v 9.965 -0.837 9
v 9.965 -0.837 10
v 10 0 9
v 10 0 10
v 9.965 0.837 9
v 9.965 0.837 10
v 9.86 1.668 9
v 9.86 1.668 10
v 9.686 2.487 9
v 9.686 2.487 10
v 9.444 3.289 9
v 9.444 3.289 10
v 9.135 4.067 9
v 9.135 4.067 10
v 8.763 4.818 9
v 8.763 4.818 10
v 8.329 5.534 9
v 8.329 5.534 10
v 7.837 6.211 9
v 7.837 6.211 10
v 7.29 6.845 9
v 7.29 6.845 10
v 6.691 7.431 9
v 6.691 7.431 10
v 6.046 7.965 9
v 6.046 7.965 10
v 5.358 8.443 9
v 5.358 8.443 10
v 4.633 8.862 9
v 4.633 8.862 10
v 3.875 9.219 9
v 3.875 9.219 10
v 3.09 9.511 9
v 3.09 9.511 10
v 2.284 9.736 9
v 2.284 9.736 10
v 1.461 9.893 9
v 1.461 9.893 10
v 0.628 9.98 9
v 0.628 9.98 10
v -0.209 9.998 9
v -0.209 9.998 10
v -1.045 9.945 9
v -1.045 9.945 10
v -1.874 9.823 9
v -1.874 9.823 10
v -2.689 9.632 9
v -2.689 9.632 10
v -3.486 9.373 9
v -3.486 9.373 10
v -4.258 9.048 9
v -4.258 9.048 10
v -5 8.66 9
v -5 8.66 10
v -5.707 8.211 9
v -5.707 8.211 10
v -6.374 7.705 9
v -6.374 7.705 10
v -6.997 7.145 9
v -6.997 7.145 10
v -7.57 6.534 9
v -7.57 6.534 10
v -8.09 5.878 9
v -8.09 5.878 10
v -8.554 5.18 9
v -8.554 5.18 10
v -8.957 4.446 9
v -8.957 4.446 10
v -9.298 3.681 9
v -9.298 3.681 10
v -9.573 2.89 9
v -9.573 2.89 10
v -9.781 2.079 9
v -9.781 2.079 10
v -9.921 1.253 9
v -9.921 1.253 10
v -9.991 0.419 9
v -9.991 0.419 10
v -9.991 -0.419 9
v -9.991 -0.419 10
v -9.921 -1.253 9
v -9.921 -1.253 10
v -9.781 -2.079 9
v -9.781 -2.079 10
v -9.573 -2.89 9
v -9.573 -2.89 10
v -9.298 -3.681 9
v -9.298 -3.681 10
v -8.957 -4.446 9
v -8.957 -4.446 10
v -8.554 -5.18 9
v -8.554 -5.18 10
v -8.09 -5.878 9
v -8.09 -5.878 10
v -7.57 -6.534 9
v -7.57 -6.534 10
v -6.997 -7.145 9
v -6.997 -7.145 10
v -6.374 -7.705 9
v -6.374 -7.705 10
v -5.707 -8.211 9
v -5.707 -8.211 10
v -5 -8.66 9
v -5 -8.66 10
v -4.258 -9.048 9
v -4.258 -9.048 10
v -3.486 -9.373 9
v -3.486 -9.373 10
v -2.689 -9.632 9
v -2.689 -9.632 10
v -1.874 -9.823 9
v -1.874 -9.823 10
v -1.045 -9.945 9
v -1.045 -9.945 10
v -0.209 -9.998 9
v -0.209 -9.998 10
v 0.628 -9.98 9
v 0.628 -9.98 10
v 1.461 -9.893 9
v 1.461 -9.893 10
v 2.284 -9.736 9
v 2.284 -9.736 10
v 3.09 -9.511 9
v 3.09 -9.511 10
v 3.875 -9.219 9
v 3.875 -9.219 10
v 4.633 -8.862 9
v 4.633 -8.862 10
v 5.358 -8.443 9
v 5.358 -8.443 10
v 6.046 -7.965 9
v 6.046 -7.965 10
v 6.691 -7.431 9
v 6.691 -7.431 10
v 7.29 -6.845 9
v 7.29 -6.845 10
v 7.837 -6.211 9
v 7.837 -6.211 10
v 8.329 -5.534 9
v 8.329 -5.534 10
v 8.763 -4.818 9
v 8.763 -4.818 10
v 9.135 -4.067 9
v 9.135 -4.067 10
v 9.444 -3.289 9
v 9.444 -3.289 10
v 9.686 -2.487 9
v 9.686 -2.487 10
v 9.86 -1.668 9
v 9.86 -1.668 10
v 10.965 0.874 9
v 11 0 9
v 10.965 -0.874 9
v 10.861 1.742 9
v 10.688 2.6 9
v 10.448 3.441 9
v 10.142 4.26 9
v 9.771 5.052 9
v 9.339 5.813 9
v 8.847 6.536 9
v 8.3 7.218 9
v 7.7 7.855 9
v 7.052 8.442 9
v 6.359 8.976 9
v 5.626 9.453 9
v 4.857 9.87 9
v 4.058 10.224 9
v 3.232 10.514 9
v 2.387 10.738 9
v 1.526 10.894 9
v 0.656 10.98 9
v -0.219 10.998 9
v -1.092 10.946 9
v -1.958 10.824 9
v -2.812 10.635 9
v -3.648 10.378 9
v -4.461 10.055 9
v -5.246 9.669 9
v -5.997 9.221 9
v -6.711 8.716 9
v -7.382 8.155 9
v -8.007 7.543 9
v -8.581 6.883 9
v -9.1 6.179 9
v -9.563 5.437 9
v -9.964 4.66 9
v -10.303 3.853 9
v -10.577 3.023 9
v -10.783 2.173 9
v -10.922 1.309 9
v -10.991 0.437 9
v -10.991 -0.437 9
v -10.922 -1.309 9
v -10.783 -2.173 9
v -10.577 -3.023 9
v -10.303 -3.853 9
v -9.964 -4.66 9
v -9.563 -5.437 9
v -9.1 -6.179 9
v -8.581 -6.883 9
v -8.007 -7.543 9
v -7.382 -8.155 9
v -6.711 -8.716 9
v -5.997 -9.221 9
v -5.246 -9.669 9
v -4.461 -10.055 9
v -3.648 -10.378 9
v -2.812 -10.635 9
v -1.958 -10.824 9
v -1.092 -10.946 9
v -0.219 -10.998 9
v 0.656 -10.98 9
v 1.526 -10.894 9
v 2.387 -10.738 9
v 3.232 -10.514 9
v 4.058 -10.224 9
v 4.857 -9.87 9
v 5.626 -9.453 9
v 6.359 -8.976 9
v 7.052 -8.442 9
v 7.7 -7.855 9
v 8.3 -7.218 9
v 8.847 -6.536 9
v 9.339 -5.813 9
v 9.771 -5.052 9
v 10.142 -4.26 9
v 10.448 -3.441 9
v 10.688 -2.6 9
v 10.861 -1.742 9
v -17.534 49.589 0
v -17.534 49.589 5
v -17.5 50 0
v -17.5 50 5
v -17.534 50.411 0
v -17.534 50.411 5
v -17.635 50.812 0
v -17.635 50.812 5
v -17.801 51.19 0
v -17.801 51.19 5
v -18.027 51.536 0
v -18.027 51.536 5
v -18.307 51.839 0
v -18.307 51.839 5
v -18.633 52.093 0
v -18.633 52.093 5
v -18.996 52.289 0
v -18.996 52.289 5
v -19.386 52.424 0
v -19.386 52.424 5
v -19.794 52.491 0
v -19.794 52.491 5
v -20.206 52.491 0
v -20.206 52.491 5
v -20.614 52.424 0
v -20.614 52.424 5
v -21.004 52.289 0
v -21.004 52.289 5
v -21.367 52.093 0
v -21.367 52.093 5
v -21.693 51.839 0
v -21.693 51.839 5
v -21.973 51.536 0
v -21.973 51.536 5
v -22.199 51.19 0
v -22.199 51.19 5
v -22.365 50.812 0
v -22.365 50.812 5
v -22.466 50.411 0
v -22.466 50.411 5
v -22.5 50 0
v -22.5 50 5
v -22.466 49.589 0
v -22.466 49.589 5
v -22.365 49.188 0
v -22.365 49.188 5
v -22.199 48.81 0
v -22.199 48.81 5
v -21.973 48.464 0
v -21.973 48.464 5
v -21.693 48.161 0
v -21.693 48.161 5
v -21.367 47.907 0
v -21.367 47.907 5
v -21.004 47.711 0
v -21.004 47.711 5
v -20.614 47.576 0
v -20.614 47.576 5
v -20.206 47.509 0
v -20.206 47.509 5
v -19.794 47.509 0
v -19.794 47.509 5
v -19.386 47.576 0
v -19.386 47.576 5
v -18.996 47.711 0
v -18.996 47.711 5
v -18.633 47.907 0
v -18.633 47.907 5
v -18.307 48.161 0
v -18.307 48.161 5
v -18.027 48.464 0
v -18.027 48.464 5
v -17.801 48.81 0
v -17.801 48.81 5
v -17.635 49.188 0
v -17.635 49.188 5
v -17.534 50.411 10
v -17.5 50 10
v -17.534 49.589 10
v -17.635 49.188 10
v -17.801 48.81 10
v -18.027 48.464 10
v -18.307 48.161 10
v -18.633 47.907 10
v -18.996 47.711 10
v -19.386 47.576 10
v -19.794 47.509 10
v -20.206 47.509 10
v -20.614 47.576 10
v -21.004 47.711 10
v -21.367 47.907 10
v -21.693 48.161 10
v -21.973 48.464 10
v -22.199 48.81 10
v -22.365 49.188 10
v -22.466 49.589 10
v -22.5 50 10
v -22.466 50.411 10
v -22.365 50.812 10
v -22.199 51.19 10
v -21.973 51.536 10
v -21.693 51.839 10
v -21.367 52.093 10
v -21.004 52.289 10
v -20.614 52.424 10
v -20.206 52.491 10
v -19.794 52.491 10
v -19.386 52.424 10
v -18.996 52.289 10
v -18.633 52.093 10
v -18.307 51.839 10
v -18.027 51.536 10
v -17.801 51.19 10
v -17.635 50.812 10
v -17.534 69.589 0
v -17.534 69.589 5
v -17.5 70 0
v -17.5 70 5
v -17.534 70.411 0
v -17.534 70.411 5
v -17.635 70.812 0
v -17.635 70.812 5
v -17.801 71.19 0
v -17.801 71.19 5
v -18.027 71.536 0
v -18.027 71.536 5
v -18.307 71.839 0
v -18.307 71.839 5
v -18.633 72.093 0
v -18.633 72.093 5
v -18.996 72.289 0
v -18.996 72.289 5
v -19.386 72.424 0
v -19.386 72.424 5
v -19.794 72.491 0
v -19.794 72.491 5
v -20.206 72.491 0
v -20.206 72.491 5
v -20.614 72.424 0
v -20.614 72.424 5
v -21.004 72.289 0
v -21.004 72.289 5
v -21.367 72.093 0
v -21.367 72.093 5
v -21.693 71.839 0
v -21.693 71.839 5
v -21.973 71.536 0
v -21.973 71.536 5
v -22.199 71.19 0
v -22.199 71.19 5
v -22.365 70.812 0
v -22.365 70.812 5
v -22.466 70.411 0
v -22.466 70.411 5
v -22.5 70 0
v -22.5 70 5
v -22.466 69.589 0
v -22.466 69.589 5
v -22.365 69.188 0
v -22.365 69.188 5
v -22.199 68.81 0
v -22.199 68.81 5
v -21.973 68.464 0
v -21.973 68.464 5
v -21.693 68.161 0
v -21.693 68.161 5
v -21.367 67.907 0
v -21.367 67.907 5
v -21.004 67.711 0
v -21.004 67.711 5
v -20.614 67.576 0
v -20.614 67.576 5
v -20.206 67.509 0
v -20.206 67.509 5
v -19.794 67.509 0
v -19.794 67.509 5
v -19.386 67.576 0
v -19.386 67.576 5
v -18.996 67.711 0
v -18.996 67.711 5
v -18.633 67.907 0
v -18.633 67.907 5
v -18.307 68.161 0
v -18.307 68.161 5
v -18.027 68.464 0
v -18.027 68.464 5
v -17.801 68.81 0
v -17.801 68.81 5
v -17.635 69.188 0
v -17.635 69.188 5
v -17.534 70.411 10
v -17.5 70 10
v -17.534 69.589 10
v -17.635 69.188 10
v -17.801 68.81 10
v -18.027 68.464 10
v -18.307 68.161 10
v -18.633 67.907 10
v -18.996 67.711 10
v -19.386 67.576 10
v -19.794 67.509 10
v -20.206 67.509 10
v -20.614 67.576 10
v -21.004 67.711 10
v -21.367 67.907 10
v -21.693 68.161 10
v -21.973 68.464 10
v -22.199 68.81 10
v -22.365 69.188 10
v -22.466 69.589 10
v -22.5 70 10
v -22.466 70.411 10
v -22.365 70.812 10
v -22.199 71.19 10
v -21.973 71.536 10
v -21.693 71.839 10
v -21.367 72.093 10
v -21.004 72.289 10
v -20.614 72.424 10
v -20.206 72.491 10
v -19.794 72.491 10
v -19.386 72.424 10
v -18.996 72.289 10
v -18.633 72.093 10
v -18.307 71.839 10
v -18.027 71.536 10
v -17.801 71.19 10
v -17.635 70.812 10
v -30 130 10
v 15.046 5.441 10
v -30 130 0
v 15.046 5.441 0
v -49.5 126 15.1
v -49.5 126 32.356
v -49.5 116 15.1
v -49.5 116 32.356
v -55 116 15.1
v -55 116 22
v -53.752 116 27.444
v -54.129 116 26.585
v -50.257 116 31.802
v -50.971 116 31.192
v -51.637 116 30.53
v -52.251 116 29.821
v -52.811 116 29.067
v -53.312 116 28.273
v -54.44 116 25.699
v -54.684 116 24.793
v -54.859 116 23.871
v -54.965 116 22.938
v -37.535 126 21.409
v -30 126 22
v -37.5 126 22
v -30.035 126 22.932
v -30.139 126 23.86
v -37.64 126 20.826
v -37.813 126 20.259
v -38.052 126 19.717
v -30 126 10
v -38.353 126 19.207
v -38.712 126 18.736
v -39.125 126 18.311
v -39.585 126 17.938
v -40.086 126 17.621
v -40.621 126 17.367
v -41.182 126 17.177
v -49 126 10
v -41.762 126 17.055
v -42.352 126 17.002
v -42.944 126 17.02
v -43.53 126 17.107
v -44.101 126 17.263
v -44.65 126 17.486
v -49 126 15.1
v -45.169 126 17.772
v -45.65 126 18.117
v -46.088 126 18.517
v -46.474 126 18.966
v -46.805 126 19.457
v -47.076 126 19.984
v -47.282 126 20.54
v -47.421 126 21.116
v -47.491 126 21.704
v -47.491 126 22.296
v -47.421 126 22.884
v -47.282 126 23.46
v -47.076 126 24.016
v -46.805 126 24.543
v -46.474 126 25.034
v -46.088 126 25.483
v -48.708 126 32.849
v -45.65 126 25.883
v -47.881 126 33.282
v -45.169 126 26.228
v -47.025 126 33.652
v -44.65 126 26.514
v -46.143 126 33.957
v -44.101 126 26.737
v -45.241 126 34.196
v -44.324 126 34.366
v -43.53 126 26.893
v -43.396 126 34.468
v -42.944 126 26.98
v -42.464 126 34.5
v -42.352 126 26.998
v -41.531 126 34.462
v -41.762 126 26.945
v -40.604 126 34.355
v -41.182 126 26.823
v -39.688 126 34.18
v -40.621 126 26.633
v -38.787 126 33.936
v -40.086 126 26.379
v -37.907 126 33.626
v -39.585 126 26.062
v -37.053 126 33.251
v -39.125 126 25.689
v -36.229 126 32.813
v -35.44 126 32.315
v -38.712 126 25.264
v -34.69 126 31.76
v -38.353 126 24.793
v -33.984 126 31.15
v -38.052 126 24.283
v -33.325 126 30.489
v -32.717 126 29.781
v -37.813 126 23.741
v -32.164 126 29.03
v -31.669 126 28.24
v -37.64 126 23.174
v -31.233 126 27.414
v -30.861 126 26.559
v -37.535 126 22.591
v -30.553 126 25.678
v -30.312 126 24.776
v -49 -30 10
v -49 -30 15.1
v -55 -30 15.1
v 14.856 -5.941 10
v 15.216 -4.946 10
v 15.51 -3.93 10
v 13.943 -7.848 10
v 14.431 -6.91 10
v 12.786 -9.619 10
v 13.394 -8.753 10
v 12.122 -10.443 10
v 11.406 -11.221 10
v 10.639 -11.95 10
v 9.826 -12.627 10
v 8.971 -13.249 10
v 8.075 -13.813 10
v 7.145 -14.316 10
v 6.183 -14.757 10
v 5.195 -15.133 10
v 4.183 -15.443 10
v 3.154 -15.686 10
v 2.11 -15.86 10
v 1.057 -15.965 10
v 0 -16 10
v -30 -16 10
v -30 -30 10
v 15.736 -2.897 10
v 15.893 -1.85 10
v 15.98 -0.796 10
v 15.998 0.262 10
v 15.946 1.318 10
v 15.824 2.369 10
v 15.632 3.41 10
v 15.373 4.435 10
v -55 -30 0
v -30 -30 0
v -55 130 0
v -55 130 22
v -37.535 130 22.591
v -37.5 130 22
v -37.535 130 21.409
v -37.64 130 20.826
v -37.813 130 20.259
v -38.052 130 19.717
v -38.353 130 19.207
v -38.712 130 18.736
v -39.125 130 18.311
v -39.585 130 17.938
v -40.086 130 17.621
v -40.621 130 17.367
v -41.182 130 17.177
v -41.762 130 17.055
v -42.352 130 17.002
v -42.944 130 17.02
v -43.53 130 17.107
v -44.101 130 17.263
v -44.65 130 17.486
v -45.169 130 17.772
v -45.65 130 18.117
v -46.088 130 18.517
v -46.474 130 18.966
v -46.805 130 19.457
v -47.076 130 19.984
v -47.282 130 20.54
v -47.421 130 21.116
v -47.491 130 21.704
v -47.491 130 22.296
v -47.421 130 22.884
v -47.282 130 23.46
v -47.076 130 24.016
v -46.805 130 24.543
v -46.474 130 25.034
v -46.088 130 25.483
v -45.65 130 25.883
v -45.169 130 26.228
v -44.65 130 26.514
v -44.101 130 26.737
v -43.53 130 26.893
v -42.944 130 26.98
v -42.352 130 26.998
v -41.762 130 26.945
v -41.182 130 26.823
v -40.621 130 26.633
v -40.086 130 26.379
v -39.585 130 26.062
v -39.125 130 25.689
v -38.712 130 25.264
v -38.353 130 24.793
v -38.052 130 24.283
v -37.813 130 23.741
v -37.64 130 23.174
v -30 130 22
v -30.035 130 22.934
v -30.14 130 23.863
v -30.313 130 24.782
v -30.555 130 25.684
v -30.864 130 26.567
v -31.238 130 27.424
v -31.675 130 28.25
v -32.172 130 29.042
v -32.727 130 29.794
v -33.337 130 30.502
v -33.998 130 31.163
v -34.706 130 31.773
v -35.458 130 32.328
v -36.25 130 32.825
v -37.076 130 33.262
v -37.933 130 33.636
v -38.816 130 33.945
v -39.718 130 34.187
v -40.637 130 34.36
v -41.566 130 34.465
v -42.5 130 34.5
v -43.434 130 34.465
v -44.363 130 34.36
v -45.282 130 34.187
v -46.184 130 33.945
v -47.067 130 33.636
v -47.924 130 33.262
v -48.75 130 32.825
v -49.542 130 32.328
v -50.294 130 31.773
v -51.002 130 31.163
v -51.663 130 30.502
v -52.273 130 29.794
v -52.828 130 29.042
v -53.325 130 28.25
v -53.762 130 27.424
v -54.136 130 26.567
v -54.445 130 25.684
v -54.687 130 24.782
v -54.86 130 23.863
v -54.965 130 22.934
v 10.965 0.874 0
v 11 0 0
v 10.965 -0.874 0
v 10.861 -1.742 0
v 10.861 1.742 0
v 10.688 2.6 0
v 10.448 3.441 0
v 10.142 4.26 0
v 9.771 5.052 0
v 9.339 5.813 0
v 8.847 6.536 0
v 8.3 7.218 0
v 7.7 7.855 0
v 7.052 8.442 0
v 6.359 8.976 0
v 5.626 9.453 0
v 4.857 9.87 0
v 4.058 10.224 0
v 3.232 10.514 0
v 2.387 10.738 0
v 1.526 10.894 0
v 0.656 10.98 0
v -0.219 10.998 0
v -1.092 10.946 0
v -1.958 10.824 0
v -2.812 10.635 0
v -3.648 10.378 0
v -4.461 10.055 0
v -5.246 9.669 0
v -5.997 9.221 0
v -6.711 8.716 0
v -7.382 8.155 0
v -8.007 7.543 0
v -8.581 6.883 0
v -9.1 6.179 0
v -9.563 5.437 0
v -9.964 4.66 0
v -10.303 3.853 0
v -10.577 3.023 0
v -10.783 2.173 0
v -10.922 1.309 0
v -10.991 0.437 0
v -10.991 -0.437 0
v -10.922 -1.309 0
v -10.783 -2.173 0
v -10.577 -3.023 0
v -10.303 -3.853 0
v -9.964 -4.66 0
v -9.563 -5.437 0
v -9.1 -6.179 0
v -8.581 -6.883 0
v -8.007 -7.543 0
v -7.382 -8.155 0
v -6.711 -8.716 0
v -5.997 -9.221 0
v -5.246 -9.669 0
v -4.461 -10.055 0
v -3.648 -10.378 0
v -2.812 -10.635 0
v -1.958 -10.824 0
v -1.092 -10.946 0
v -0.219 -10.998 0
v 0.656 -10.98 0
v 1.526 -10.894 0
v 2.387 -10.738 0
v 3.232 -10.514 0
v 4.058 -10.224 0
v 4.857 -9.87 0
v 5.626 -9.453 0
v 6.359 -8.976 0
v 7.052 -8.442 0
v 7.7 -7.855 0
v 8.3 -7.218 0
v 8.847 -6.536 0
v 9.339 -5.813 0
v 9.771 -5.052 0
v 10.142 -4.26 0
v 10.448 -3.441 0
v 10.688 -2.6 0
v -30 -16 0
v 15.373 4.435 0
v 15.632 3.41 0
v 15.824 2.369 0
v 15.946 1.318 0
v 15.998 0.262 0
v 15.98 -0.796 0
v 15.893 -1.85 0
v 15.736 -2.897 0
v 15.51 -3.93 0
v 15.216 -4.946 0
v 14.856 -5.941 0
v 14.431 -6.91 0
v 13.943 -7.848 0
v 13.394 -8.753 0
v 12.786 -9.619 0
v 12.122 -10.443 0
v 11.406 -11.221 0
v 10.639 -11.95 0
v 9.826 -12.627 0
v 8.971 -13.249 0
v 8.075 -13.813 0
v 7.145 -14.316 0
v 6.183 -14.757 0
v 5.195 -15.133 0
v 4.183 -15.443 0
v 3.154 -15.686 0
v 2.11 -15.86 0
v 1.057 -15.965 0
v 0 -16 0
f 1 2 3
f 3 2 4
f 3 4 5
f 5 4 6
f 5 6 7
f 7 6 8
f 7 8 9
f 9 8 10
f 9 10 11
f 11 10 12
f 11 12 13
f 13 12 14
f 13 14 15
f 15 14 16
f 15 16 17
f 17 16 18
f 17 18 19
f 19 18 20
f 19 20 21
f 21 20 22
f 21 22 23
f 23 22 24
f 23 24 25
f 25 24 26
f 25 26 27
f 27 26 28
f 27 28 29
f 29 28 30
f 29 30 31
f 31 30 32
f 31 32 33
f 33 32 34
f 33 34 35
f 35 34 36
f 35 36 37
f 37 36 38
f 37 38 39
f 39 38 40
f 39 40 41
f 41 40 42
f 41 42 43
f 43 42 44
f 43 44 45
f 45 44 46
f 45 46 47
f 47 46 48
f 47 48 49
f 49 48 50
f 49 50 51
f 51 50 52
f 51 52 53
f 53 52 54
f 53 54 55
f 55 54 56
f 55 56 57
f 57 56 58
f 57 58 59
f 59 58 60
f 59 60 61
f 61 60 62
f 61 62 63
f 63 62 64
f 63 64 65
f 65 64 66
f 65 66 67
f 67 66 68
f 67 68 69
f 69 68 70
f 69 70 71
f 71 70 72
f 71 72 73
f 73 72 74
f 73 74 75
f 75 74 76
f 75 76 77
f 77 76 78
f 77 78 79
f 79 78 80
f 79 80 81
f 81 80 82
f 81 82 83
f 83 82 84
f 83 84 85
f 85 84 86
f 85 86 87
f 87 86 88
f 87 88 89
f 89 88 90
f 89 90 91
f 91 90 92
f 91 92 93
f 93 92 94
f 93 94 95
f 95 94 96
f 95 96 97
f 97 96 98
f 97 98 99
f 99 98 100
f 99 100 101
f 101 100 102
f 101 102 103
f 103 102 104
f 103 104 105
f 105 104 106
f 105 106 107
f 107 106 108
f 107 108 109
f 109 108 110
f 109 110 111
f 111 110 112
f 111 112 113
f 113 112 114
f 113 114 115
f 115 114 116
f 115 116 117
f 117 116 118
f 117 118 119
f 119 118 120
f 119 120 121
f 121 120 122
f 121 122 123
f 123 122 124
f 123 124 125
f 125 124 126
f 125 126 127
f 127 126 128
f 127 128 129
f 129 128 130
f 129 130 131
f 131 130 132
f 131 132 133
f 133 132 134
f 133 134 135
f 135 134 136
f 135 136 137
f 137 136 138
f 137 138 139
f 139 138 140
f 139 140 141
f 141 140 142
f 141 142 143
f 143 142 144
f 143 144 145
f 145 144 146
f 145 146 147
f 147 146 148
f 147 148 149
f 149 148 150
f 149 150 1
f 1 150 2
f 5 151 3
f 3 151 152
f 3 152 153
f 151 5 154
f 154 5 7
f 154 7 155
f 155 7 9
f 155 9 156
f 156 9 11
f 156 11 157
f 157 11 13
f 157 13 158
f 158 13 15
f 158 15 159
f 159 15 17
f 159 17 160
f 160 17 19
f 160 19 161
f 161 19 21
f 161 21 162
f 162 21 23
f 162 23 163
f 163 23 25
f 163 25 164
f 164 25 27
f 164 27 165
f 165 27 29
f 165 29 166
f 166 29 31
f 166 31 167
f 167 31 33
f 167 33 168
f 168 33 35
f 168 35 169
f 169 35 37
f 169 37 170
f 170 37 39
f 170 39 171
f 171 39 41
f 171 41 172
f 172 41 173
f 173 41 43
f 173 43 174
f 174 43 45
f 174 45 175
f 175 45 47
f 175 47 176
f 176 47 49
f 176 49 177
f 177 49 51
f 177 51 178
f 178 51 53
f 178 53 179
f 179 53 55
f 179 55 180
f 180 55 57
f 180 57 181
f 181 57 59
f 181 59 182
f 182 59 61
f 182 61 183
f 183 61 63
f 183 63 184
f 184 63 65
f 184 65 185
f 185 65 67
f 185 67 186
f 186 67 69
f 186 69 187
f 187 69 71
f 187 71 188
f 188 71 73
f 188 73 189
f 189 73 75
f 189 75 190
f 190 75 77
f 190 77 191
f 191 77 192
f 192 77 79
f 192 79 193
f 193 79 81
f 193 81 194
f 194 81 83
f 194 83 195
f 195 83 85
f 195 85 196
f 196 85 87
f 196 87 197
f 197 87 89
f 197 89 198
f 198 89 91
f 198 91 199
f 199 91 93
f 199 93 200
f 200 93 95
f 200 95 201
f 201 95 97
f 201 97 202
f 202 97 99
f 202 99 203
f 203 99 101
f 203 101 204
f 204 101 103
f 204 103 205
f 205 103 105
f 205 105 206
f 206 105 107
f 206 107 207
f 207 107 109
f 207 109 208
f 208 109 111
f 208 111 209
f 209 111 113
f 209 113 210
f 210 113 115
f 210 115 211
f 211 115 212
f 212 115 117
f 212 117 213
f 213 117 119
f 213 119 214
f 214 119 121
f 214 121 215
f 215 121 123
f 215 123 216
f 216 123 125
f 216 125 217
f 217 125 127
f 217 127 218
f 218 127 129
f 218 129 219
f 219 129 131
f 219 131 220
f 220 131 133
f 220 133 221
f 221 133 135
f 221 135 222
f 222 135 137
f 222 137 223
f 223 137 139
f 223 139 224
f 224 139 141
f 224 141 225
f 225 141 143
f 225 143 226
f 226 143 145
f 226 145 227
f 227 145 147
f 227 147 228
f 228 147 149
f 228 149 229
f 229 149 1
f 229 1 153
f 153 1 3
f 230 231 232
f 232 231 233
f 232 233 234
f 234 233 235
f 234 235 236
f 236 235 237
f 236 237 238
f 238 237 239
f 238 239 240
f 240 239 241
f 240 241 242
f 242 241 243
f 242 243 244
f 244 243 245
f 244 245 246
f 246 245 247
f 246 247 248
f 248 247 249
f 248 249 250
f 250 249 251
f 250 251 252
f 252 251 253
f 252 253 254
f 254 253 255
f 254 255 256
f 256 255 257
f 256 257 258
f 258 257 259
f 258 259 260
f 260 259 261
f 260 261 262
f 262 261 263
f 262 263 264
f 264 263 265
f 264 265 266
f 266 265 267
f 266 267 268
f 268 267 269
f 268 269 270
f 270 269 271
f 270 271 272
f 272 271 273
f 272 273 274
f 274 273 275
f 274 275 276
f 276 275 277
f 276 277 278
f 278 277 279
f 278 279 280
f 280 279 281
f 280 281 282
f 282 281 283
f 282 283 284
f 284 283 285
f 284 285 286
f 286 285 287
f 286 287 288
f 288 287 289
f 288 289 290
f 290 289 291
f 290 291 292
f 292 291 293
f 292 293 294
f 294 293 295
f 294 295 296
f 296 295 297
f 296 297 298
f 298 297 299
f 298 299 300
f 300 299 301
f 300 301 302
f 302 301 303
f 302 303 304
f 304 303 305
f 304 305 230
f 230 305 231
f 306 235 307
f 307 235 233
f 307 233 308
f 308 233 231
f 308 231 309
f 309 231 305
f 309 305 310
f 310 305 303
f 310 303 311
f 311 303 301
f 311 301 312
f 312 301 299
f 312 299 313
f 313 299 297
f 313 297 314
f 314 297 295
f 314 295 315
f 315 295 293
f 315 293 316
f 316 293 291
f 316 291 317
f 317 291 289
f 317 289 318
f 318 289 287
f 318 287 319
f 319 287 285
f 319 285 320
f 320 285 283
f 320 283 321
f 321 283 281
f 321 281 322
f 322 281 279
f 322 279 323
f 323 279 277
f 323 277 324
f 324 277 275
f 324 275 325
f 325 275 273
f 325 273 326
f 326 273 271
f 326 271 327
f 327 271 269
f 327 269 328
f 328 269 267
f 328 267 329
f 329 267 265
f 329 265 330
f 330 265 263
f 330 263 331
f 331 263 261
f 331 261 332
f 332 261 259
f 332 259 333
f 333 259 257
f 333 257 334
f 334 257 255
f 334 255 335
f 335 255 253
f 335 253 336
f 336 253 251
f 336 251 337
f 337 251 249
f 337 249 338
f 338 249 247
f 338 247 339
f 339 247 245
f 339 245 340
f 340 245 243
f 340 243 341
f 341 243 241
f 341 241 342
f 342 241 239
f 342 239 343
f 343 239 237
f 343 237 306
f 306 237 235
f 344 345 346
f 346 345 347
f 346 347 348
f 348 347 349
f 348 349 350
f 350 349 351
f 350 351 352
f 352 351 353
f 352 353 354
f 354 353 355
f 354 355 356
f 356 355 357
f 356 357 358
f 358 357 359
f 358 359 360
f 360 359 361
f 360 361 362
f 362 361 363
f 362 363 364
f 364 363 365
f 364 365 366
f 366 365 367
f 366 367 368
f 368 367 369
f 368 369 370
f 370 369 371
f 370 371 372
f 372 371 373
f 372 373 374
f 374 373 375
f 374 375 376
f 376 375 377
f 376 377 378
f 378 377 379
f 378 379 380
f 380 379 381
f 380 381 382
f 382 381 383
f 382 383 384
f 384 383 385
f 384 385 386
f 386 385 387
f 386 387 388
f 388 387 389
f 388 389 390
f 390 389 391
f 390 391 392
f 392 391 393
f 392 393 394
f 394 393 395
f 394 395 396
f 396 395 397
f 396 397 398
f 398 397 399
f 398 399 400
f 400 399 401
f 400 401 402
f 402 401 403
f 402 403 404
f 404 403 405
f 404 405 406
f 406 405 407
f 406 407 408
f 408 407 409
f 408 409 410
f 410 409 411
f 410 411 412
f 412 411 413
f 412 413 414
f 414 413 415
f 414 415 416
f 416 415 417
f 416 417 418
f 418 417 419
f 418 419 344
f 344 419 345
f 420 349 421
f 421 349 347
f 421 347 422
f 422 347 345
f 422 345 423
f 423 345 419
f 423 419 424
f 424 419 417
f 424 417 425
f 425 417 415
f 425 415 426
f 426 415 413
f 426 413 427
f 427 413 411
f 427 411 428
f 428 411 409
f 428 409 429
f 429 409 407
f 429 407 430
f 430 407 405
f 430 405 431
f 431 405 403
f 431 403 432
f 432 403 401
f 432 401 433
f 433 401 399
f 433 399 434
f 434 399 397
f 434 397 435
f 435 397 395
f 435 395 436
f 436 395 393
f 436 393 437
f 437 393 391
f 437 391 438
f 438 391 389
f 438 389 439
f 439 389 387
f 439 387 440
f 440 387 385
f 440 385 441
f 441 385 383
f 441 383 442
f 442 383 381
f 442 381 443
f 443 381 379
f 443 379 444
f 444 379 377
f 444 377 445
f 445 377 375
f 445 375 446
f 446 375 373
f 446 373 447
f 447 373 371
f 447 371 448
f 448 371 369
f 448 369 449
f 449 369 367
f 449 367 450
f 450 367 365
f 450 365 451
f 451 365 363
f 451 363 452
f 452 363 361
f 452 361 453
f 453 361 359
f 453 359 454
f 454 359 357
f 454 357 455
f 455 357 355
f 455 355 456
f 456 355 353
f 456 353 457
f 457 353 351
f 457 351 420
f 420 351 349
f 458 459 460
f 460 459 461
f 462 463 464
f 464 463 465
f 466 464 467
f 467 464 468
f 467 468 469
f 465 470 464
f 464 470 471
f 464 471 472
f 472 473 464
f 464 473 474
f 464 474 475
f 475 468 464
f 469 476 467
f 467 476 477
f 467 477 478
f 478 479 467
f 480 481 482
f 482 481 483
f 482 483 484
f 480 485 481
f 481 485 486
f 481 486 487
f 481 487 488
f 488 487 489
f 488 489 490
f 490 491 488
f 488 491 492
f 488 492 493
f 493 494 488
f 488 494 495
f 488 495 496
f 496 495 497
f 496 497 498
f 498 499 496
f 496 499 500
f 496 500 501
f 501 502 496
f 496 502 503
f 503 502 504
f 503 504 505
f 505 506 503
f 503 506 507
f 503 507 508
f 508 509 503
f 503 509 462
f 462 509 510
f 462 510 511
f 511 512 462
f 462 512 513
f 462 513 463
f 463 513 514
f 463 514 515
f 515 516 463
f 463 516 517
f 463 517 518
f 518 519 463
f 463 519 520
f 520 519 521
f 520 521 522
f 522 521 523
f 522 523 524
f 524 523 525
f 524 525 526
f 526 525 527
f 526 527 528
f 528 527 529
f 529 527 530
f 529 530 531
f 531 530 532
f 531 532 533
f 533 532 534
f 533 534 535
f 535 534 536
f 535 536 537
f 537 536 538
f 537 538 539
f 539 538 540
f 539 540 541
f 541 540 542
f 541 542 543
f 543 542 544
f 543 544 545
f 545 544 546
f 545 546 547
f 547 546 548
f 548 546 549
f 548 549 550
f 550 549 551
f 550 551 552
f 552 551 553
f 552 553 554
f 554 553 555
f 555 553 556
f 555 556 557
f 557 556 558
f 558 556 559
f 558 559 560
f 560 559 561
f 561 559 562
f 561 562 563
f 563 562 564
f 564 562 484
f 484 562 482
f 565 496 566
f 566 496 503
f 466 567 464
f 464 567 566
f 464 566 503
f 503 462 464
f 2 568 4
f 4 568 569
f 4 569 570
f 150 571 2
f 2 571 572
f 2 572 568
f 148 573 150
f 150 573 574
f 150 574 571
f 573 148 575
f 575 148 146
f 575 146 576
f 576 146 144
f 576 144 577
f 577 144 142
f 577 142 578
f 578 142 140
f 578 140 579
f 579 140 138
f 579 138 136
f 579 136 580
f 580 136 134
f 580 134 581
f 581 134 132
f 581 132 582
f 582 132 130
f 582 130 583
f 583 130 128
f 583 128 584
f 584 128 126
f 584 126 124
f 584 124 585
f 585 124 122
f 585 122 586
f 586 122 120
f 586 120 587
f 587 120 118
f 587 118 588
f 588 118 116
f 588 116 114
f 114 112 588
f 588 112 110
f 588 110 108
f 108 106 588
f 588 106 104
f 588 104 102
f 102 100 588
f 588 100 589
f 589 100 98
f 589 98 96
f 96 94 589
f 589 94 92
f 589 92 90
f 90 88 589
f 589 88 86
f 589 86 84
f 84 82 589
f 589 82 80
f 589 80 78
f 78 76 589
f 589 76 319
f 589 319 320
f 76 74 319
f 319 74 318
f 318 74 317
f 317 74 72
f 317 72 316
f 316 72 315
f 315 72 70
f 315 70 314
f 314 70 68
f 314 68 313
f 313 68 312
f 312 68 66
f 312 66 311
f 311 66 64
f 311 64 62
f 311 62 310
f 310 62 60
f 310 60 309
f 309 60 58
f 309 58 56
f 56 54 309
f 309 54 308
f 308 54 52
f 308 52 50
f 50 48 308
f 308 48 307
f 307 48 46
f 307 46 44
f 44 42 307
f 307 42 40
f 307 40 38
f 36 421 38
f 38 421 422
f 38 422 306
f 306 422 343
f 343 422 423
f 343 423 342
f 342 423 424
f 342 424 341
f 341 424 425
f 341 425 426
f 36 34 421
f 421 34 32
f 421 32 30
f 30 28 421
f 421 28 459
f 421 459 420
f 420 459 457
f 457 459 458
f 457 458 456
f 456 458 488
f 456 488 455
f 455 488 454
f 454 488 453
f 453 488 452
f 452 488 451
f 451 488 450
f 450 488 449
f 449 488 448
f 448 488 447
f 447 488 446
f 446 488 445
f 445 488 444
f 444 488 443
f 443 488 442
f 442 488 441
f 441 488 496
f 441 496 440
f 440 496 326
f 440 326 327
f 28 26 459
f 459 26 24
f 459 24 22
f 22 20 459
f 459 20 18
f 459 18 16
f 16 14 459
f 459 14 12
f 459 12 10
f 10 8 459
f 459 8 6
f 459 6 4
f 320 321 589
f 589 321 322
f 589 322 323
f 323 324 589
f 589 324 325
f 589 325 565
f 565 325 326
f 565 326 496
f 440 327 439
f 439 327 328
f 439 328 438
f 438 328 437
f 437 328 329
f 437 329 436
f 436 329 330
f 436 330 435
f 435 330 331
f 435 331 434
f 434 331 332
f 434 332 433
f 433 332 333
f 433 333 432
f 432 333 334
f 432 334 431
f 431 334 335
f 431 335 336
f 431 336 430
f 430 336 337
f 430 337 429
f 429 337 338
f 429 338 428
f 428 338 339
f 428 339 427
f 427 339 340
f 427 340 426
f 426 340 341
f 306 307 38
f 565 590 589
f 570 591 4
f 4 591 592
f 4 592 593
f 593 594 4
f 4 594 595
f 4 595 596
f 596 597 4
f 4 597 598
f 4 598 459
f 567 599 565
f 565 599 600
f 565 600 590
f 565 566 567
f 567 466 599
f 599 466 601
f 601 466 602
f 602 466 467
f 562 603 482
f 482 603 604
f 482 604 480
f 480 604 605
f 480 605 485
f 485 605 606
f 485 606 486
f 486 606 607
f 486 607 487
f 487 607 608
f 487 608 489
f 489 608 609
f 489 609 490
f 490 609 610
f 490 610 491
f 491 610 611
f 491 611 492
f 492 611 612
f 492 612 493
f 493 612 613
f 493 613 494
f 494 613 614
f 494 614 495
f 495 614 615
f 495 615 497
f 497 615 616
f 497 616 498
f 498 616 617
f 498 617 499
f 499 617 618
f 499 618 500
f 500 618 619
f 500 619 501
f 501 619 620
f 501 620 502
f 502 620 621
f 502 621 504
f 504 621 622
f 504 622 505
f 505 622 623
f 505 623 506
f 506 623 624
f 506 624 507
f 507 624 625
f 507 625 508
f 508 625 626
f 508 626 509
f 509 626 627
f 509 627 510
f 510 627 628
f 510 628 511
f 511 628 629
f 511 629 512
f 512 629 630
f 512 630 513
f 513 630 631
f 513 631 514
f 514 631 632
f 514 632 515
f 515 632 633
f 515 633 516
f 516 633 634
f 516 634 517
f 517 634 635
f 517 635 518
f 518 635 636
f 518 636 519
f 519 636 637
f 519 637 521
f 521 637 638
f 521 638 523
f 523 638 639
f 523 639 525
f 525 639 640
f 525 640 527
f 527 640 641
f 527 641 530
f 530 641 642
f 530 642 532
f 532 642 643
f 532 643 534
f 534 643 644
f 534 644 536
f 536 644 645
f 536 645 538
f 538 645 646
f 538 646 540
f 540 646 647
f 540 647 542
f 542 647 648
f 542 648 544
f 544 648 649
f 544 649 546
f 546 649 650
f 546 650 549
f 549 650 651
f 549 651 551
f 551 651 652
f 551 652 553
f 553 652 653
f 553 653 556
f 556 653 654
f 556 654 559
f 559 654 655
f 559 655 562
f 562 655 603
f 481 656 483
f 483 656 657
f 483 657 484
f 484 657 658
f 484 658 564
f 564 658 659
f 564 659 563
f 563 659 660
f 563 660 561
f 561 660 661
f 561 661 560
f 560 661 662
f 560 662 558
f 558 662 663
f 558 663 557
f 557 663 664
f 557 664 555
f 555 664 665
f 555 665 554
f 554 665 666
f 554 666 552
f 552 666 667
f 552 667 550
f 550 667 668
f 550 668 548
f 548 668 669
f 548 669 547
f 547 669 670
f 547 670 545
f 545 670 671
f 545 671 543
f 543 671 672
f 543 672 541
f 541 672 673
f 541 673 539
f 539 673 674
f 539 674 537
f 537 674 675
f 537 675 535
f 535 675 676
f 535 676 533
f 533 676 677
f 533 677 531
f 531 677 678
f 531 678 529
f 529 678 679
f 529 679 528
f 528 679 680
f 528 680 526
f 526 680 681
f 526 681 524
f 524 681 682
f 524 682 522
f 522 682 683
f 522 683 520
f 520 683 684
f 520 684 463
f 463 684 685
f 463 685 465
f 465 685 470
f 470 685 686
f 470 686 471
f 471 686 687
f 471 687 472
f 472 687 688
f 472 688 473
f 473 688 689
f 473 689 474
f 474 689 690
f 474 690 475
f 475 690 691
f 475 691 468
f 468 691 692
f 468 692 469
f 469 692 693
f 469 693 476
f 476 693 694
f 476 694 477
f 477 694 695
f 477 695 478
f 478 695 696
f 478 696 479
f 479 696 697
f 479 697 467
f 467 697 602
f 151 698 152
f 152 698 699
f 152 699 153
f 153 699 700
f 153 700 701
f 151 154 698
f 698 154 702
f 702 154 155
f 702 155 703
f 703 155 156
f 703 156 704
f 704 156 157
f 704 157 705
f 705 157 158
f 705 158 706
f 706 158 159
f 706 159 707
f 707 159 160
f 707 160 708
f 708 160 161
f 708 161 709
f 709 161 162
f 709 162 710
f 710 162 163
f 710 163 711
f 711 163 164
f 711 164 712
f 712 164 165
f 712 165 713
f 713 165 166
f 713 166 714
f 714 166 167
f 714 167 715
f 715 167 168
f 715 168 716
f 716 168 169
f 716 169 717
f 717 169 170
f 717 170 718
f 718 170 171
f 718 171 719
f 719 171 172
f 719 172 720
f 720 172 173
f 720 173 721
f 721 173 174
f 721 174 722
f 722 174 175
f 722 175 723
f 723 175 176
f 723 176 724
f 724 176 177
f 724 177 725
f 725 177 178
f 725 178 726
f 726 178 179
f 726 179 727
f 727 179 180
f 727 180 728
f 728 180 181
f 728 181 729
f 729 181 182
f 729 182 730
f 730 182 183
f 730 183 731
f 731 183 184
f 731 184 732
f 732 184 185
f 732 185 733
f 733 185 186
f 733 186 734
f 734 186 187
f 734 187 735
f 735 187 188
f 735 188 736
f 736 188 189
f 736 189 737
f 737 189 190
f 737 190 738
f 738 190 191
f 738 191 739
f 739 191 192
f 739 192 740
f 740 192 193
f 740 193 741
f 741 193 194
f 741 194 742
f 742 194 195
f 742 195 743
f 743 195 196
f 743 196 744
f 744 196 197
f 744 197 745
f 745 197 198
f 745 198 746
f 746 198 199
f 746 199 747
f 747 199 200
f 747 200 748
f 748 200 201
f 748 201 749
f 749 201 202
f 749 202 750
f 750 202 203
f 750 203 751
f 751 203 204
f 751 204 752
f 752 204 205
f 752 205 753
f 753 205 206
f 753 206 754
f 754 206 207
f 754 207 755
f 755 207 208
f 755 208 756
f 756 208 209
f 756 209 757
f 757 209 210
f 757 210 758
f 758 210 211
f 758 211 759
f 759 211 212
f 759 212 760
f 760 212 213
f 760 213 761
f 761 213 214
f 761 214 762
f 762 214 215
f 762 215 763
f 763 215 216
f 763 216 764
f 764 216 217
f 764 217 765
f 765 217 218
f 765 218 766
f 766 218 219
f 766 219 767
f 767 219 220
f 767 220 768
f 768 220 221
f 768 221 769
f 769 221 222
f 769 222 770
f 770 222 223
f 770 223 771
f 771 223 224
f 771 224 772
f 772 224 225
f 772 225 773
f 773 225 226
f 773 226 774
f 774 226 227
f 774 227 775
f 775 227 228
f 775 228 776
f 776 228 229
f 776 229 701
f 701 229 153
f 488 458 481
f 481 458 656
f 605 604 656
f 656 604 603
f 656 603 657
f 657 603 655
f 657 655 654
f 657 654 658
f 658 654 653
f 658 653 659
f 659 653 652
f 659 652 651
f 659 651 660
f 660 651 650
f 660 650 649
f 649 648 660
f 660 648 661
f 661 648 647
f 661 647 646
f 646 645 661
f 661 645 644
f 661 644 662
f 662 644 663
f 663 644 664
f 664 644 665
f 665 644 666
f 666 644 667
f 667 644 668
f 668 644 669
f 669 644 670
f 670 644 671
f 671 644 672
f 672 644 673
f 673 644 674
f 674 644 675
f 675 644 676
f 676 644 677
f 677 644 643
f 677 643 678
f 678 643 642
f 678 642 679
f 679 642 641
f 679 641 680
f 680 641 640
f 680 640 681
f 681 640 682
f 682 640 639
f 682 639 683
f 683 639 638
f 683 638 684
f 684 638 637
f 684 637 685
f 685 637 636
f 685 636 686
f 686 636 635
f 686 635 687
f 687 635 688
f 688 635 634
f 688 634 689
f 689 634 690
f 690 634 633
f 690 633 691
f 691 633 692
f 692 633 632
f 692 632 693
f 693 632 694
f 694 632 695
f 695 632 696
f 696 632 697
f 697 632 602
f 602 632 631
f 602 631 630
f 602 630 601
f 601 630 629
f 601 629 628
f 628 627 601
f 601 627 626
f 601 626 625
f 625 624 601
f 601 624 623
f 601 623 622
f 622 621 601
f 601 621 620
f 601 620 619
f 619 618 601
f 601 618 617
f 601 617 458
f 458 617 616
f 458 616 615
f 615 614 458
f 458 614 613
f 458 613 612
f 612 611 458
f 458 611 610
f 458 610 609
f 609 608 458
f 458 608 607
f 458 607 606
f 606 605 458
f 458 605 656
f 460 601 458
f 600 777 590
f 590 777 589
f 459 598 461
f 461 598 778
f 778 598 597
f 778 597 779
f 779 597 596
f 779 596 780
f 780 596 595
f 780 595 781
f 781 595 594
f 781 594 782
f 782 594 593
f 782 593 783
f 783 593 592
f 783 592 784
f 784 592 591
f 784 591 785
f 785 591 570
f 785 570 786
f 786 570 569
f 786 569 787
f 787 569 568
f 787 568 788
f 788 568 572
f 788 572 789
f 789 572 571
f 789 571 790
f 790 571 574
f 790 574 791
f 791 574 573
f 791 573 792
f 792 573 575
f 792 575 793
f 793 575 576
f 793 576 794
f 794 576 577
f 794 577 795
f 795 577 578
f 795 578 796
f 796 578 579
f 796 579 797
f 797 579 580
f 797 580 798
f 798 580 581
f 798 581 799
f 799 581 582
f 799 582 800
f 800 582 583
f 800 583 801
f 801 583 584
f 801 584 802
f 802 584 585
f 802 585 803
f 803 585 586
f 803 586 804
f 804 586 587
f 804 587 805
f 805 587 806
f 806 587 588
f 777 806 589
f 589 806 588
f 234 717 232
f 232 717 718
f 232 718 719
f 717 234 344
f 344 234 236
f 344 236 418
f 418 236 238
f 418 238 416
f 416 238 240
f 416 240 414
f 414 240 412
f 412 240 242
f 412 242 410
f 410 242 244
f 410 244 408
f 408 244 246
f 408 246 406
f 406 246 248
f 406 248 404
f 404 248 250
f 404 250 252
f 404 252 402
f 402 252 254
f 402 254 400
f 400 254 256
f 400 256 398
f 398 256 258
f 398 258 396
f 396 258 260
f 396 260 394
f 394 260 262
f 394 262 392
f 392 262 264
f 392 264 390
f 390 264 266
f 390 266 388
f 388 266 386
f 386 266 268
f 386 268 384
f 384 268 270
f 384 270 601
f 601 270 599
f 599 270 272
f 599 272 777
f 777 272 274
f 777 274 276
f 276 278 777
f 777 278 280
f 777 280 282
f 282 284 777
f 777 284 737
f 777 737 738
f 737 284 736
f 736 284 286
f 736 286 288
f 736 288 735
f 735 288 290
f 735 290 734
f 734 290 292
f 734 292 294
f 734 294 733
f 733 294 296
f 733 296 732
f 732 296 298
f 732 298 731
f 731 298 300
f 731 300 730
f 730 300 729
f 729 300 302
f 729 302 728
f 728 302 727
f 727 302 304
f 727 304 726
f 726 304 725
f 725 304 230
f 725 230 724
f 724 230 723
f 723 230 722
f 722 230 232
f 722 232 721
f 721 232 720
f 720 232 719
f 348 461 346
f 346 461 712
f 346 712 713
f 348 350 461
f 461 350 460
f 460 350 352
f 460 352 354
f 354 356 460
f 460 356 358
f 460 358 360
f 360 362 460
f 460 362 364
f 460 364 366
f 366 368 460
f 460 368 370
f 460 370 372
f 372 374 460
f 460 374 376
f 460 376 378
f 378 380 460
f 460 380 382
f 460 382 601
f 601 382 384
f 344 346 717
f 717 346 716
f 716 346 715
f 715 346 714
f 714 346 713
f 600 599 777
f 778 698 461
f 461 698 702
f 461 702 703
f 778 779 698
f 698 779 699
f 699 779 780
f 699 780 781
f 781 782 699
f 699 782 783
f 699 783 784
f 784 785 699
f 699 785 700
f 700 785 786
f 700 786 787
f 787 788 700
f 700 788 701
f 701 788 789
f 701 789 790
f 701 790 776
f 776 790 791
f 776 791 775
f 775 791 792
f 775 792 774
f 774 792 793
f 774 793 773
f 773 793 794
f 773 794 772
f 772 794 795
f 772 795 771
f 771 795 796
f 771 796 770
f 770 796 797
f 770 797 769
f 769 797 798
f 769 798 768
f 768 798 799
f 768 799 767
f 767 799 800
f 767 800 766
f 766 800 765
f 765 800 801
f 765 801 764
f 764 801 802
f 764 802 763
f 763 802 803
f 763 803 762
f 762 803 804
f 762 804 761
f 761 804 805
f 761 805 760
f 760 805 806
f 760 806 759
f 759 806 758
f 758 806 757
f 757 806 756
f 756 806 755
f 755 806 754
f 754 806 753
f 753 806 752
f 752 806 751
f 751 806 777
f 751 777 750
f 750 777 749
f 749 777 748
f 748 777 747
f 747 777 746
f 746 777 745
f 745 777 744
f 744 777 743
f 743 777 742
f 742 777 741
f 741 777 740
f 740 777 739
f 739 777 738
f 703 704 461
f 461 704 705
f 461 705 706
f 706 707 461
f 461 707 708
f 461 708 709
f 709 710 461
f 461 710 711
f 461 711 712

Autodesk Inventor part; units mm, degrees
ref_plane "YZ Plane" through (0, 0, 0) normal (1, 0, 0) x (0, 1, 0)
ref_plane "XZ Plane" through (0, 0, 0) normal (0, 1, 0) x (-1, 0, 0)
ref_plane "XY Plane" through (0, 0, 0) normal (0, 0, 1) x (1, 0, 0)
sketch "Sketch1" plane through (0, 0, 0) normal (0, 0, 1) x (1, 0, 0)
  circle A0 centre (0, 0) radius 11
  line L0 (0, 0) -> (-30, 0) construction
  line L1 (0, 16) -> (-30, 16)
  line L2 (-30, -16) -> (0, -16)
  arc A1 (0, -16) -> (0, 16) centre (0, 0) ccw
  arc A2 (-30, 16) -> (-30, -16) centre (-30, 0) ccw construction
  line L3 (-30, 16) -> (-30, -16)
  line L4 (-30, 130) -> (-55, 130)
  line L5 (-55, 130) -> (-55, -130)
  line L6 (-55, -130) -> (-30, -130)
  line L7 (-30, -130) -> (-30, 130)
  point P0 (-15, 0)
  point P1 (-30, 0)
  dimension "d0" = 22
  dimension "d1" = 5
  dimension "d2" = 30
  dimension "d3" = 260
  dimension "d4" = 25
extrude "Extrusion1" add sketch "Sketch1" along normal blind 10
sketch "Sketch2" plane through (-55, 130, 0) normal (0, 1, 0) x (1, 0, 0)
  line L0 (25, -10) -> (0, -10) construction
  line L1 (12.5, -10) -> (12.5, -22) construction
  circle A0 centre (12.5, -22) radius 5
  line L2 (12.5, -10) -> (12.5, -22) construction
  line L3 (25, -10) -> (25, -22)
  line L4 (0, -22) -> (0, -10)
  arc A1 (25, -10) -> (0, -10) centre (12.5, -10) ccw construction
  arc A2 (0, -22) -> (25, -22) centre (12.5, -22) ccw
  line L5 (0, -10) -> (25, -10)
  point P0 (55, 0)
  point P1 (12.5, -16)
  dimension "d7" = 10
  dimension "d8" = 12
extrude "Extrusion2" add sketch "Sketch2" against normal blind 4
sketch "Sketch3" plane through (0, 0, 10) normal (0, 0, 1) x (1, 0, 0)
  line L0 (-55, 130) -> (-55, -130) projected
  line L1 (-55, -130) -> (-30, -130) projected
  line L2 (-55, -130) -> (-30, -130)
  line L3 (-30, -130) -> (-30, -30)
  line L4 (-30, -30) -> (-55, -30)
  line L5 (-55, -30) -> (-55, -130)
  point P0 (0, 0)
  dimension "d11" = 100
extrude "Extrusion3" cut sketch "Sketch3" against normal through all
sketch "Sketch4" plane through (0, 0, 10) normal (0, 0, 1) x (1, 0, 0)
  line L0 (-55, -30) -> (-49, -30)
  line L1 (-49, -30) -> (-49, 126)
  line L2 (-49, 126) -> (-55, 126)
  line L3 (-55, 126) -> (-55, -30)
  line L4 (-55, 126) -> (-30, 126) projected
  line L5 (-49, 3) -> (-49, -97) construction
  point P0 (0, 0)
  dimension "d18" = 6
extrude "Extrusion4" add sketch "Sketch4" along normal blind 5.1
sketch "Sketch5" plane through (-55, 126, 0) normal (0, -1, 0) x (1, 0, 0)
  line L0 (5.5, 23.8249) -> (5.5, 20.1751) construction
  line L1 (0, 15.1) -> (6, 15.1) projected
  line L2 (0, 15.1) -> (5.5, 15.1)
  line L3 (5.5, 15.1) -> (5.5, 22)
  line L4 (5.5, 22) -> (0, 22)
  line L5 (0, 22) -> (0, 15.1)
  line L6 (5.5, 22) -> (5.5, 32.3562)
  arc A0 (25, 22) -> (0, 22) centre (12.5, 22) ccw projected
  arc A1 (5.5, 32.3562) -> (0, 22) centre (12.5, 22) ccw
  line L7 (5.5, 22) -> (0, 22)
  point P0 (55, 0)
extrude "Extrusion5" add sketch "Sketch5" along normal blind 10
sketch "Sketch6" plane through (0, 0, 0) normal (0, 0, -1) x (-1, 0, 0)
  line L0 (30, 130) -> (-15.0463, 5.4414)
  arc A0 (0, 16) -> (0, -16) centre (0, 0) ccw projected
  arc A1 (0, 16) -> (-15.0463, 5.4414) centre (0, 0) ccw
  line L1 (0, 16) -> (30, 16) projected
  line L2 (0, 16) -> (30, 16)
  line L3 (30, 16) -> (30, 130) projected
  line L4 (30, 16) -> (30, 130)
extrude "Extrusion6" add sketch "Sketch6" against normal up to surface (10 mm away)
sketch "Sketch7" plane through (0, 0, 10) normal (0, 0, 1) x (1, 0, 0)
  line L0 (-20, 50) -> (-20, 70) construction
  circle A0 centre (-20, 50) radius 2.5
  circle A1 centre (-20, 70) radius 2.5
  line L1 (-55, 116) -> (-55, -30) projected
  line L2 (-30, 130) -> (-55, 130) projected
  point P0 (0, 0)
  dimension "d21" = 5
  dimension "d22" = 20
  dimension "d23" = 35
  dimension "d24" = 80
extrude "Extrusion7" cut sketch "Sketch7" against normal through all
sketch "Sketch8" plane through (0, 0, 10) normal (0, 0, 1) x (1, 0, 0)
  circle A0 centre (0, 0) radius 11 projected
  circle A1 centre (0, 0) radius 10
  dimension "d27" = 1
extrude "Extrusion8" add sketch "Sketch8" against normal blind 1
properties part number "frame"
